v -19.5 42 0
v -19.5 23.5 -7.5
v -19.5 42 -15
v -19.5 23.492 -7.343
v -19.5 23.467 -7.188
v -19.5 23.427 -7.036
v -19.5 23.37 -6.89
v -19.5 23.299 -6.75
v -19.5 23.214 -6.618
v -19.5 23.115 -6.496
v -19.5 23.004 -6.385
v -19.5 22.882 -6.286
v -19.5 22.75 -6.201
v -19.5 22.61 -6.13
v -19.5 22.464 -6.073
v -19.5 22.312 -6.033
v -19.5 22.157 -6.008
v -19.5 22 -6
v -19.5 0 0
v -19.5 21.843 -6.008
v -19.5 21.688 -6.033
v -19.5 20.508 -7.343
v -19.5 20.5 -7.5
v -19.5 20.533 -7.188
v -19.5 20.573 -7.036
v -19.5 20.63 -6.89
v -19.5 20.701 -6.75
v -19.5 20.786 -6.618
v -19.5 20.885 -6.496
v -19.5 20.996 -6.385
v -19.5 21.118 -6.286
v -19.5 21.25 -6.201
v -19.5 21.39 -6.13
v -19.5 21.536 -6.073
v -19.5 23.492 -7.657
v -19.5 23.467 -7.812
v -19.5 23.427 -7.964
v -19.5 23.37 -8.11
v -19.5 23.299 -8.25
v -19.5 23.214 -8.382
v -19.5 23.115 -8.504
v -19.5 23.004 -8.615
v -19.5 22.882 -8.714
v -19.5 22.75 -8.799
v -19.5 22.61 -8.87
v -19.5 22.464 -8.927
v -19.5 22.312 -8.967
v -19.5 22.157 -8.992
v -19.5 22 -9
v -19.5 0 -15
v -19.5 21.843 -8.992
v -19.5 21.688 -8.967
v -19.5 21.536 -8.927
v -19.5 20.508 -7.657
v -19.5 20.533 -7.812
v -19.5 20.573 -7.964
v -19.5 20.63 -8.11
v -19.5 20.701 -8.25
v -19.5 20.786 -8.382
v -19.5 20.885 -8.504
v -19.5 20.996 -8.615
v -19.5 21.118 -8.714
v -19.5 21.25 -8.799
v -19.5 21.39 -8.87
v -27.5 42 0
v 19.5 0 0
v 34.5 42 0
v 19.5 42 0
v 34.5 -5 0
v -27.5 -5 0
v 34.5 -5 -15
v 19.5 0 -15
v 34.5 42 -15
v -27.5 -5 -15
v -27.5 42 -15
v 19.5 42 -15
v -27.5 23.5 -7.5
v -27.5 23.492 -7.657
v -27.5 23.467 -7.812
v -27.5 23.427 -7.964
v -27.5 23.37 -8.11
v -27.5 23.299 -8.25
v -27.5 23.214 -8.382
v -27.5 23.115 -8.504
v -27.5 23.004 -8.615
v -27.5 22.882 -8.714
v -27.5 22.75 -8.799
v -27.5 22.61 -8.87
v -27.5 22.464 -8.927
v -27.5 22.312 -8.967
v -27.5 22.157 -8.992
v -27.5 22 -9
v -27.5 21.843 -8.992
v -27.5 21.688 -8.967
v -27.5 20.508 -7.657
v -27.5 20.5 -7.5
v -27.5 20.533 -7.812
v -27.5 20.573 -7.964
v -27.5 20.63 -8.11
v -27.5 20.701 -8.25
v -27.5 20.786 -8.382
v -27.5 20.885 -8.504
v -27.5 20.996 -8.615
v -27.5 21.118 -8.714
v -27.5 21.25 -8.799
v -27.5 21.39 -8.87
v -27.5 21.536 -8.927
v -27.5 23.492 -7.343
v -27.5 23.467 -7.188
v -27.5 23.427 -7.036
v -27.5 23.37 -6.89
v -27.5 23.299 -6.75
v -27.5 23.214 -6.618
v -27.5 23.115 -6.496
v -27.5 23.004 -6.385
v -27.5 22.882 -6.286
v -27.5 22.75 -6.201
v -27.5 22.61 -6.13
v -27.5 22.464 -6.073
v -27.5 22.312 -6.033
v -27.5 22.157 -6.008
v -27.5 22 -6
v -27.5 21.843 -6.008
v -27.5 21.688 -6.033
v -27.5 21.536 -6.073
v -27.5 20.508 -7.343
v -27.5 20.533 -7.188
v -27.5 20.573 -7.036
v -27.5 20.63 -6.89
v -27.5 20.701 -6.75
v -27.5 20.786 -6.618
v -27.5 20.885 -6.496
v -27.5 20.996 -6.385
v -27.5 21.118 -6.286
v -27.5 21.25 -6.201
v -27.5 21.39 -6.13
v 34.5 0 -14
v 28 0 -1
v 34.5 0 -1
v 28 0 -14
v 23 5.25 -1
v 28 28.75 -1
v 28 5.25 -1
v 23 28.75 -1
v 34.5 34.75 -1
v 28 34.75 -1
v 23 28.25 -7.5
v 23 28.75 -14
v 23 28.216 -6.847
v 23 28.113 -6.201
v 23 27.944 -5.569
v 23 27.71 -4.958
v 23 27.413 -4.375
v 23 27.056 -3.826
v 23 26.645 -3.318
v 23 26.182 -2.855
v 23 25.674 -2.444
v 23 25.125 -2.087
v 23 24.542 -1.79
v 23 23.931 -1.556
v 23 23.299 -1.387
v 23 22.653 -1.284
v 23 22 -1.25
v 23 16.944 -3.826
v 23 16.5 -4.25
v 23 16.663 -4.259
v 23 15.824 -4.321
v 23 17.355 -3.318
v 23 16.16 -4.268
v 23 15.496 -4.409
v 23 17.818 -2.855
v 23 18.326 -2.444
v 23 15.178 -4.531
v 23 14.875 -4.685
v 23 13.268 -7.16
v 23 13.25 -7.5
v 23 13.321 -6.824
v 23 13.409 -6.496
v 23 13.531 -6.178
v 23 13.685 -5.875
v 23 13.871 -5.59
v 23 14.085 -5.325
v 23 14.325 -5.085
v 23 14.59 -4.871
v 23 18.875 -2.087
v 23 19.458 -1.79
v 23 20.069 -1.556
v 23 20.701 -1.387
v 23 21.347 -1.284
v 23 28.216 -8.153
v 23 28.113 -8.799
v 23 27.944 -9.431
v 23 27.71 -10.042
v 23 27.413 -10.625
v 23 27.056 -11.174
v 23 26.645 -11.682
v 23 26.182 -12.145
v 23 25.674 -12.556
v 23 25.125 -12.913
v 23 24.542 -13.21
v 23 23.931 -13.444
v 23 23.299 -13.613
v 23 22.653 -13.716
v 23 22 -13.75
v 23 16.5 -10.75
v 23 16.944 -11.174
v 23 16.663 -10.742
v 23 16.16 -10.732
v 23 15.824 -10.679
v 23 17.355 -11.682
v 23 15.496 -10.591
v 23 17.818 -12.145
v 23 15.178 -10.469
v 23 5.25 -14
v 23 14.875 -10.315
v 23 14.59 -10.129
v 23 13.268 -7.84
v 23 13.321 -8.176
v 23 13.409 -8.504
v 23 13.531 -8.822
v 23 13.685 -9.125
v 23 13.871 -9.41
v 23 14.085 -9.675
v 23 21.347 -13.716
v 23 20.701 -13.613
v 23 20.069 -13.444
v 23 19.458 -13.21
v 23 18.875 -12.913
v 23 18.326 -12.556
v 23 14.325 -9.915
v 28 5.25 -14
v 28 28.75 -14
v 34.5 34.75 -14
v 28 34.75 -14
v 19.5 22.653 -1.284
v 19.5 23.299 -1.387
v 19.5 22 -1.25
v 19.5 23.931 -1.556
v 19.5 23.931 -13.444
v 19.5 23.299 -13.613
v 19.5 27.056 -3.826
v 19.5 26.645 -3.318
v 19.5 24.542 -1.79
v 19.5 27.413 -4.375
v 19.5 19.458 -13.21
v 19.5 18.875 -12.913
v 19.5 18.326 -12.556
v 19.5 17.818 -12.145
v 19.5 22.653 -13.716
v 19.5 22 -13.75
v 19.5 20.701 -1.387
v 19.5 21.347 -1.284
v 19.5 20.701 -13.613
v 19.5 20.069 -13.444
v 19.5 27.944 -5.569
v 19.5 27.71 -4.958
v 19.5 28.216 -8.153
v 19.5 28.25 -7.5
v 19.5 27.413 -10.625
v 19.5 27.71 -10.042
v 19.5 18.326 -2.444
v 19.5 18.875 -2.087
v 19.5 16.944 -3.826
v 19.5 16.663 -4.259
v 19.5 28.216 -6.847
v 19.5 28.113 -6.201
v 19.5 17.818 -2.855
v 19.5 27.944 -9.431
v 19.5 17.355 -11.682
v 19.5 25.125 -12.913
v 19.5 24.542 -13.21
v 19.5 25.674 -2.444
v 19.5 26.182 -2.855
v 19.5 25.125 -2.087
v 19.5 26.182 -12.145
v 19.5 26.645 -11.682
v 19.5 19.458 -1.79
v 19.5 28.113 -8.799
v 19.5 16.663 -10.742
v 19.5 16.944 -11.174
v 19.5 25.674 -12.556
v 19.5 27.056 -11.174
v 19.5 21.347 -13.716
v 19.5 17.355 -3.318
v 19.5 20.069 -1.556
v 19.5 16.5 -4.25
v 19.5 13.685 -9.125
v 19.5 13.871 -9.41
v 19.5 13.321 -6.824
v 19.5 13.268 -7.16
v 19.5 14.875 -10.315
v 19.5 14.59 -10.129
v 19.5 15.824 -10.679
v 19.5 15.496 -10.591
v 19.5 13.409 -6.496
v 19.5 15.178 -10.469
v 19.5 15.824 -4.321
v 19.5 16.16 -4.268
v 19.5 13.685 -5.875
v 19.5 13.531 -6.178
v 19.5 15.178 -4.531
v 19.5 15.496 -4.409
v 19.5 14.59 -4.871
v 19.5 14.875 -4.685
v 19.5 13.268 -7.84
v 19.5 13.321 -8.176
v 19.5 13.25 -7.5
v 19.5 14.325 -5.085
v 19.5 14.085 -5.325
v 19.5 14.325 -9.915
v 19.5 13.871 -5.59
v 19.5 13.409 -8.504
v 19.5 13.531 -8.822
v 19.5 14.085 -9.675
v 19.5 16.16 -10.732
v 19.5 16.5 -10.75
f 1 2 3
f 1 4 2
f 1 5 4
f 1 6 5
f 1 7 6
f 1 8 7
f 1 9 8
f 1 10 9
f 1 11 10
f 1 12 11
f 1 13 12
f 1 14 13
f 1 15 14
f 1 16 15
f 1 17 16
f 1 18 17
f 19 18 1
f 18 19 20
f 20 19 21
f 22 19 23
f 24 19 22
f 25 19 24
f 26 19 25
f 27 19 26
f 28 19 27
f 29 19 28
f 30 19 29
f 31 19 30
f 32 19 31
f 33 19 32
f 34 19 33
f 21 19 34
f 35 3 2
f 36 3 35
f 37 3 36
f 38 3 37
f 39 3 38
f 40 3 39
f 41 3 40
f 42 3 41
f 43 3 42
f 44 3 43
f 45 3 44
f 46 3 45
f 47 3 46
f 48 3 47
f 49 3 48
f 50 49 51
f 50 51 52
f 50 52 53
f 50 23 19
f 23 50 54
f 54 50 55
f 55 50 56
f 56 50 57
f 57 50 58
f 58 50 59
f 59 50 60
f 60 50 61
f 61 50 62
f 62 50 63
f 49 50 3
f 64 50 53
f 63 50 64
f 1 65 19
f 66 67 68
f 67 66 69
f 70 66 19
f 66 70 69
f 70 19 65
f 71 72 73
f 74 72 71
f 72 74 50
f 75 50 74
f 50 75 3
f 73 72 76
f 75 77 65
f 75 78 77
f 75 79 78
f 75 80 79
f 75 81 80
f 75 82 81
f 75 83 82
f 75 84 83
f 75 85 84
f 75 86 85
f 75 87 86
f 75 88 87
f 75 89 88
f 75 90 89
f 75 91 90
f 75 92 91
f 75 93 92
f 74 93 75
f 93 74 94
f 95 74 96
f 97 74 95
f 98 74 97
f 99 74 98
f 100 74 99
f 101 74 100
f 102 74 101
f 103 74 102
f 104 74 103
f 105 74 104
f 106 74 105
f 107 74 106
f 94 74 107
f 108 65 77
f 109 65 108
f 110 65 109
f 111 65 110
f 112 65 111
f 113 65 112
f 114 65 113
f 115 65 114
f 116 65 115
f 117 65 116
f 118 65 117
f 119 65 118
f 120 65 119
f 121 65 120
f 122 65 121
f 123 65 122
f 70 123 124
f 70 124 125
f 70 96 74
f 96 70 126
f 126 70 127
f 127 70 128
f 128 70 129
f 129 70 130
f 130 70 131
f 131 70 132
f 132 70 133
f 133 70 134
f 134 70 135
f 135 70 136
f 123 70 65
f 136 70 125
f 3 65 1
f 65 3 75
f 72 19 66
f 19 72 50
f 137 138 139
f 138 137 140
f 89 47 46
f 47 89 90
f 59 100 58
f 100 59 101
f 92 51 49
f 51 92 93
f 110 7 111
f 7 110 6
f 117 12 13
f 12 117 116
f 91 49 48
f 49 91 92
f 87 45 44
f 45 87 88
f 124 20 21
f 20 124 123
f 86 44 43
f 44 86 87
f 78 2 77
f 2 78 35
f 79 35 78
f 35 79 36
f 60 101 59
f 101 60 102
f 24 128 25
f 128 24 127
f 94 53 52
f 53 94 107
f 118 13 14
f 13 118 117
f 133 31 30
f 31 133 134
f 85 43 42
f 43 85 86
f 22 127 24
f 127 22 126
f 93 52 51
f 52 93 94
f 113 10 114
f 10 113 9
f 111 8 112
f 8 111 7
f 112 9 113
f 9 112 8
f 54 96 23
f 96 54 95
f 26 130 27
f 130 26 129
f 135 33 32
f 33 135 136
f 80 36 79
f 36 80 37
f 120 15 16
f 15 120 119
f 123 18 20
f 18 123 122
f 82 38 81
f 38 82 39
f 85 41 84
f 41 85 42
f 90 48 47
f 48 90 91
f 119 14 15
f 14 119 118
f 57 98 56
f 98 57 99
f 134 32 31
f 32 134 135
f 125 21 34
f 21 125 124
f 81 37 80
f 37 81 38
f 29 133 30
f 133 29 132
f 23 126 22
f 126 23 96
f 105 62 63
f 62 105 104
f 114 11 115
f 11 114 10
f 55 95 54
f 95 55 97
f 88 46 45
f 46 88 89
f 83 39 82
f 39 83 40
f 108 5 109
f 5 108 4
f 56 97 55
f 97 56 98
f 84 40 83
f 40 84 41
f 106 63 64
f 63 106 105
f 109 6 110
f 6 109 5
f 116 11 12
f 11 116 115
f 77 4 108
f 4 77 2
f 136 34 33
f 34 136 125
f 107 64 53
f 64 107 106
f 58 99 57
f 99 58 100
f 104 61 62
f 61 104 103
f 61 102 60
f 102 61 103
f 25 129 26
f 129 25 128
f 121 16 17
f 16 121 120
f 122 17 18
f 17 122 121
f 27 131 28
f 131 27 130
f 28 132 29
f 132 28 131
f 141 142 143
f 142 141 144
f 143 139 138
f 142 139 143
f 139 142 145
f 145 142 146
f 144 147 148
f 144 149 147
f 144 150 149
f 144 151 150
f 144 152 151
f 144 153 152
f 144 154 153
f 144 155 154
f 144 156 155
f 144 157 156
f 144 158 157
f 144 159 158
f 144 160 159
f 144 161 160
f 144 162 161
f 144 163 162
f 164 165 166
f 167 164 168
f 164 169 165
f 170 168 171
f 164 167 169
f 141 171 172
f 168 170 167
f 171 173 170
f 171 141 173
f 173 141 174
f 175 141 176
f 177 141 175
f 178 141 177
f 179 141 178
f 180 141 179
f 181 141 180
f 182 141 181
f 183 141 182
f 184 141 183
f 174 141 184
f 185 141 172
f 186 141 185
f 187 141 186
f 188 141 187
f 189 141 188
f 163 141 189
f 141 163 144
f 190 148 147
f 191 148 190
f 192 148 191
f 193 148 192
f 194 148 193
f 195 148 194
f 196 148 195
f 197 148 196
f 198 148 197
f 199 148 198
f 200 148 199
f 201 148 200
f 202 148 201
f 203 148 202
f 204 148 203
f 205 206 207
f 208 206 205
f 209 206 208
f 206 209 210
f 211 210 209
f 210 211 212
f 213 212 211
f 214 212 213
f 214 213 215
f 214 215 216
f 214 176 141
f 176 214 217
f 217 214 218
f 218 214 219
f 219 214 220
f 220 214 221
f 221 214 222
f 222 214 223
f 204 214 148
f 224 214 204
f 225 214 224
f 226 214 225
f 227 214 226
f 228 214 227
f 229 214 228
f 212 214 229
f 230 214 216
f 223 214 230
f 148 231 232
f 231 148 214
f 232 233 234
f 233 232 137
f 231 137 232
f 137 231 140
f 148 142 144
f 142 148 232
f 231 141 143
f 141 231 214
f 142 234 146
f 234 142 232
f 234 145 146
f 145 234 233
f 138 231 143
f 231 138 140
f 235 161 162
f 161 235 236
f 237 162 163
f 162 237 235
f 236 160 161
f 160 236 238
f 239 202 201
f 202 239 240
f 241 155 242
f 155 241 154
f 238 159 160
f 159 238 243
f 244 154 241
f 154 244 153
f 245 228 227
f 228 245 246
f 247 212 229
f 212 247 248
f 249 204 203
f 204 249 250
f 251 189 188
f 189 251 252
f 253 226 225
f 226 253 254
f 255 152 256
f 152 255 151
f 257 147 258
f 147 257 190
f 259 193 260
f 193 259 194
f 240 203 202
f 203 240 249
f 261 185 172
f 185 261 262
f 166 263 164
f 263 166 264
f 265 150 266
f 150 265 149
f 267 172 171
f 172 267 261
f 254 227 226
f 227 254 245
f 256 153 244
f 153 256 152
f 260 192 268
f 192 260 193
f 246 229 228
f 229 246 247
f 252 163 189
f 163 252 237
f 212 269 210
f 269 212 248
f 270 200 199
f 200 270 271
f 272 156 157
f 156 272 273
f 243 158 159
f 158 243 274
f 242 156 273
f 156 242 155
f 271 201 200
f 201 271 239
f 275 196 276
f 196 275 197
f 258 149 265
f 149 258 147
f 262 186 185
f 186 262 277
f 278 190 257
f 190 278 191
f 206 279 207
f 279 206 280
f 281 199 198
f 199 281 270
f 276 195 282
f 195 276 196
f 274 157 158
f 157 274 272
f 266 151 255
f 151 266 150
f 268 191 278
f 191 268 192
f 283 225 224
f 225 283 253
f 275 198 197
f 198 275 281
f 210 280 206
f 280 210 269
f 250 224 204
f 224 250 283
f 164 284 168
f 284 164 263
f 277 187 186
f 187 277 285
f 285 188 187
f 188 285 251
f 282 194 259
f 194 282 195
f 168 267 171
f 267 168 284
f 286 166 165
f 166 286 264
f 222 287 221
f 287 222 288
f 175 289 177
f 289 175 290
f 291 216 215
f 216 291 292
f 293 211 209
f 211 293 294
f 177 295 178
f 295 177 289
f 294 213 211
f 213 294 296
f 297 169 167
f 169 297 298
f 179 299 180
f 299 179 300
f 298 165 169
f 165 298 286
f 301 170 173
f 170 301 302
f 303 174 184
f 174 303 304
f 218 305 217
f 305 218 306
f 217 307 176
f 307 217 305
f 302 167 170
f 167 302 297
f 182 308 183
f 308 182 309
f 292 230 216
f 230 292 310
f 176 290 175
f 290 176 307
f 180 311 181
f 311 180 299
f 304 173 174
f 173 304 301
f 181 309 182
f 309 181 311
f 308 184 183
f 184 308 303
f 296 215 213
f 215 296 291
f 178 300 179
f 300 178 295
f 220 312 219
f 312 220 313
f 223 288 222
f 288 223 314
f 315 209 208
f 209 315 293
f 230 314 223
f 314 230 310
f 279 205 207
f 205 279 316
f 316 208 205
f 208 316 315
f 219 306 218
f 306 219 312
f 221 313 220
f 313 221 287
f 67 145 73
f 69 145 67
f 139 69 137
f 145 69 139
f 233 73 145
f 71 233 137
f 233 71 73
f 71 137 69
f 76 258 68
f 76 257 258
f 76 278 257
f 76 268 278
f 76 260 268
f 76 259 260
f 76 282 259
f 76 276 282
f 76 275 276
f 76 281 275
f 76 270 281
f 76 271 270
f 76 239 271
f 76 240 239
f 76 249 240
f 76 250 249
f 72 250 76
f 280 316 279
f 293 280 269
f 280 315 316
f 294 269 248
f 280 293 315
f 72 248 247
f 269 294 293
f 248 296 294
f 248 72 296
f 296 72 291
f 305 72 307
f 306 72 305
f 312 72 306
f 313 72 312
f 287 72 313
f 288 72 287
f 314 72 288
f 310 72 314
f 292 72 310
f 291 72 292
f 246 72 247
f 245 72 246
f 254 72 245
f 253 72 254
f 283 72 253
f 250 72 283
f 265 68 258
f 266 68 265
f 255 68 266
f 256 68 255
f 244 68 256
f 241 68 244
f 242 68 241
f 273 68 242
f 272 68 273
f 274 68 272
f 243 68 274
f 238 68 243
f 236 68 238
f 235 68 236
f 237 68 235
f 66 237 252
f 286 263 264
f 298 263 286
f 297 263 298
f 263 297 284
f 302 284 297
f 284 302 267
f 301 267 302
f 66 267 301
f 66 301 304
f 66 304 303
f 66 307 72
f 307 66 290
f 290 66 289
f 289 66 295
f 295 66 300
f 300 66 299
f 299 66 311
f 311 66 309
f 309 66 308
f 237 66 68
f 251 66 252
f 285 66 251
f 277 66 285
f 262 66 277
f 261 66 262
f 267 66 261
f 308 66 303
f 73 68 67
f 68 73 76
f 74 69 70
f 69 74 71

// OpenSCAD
// file: ../lib/micro_servo.scad
$fn = 60;



module micro_servo()
{
    servo_mount_width = 8.5;
    servo_body_length = 22.5;
    servo_body_width = 12; // square body
    servo_body_height = 22.5;
    servo_axis_length = 15.5;

    mounting_arm_thickness = 2.5;
    mounting_arm_length = 5;
    mounting_arm_height = 15;

    gearbox_cylinder_height = 4;
    major_gearbox_offset = 0.5; // distance from edge
    major_gearbox_cylinder_diameter = 11.5;
    minor_gearbox_offset = 5.5; // distance from major gearbox center
    //minor_gearbox_cylinder_diameter = 5.5;
    minor_gearbox_cylinder_diameter = 6.5; // for simplicity

    control_head_diameter = 5;
    control_head_height = 3;
    
    translate([-servo_body_width / 2, 0, 0])
    translate([0, -servo_body_length + major_gearbox_offset + (major_gearbox_cylinder_diameter / 2), 0])
    translate([0, 0, -(servo_body_height + gearbox_cylinder_height)])
    union()
    {
        cube([servo_body_width, servo_body_length, servo_body_height]);
        
        // forward mounting arm
        translate([0, servo_body_length, mounting_arm_height])
        cube([servo_body_width, mounting_arm_length, mounting_arm_thickness]);
        
        // rear mounting arm
        translate([0, -mounting_arm_length, mounting_arm_height])
        cube([servo_body_width, mounting_arm_length, mounting_arm_thickness]);
        
        // major gearbox cylinder
        translate([major_gearbox_offset/2, servo_body_length - major_gearbox_offset, servo_body_height])
        translate([major_gearbox_cylinder_diameter / 2, -major_gearbox_cylinder_diameter / 2, 0])
        cylinder(d=major_gearbox_cylinder_diameter, h=gearbox_cylinder_height);
        
        // minor gearbox cylinder
        translate([major_gearbox_offset/2, servo_body_length - major_gearbox_offset, servo_body_height])
        translate([major_gearbox_cylinder_diameter / 2, -major_gearbox_cylinder_diameter / 2, 0])
        translate([0, -minor_gearbox_offset, 0])
        cylinder(d=minor_gearbox_cylinder_diameter, h=gearbox_cylinder_height);
        
        // control head
        translate([0, servo_body_length - major_gearbox_offset, servo_body_height])
        translate([major_gearbox_cylinder_diameter / 2, -major_gearbox_cylinder_diameter / 2, gearbox_cylinder_height])
        cylinder(d=control_head_diameter, h=control_head_height);
    }
}

module micro_servo_void()
{
    servo_mount_width = 9.5;
    servo_body_length = 23.5;
    servo_body_width = 13; // square body
    servo_body_height = 23.5;
    servo_axis_length = 15.5;

    mounting_arm_thickness = 3.5;
    mounting_arm_length = 6;
    mounting_arm_height = 15;

    gearbox_cylinder_height = 4.5;
    major_gearbox_offset = 0.5; // distance from edge
    major_gearbox_cylinder_diameter = 12.5;
    minor_gearbox_offset = 5.5; // distance from major gearbox center
    //minor_gearbox_cylinder_diameter = 5.5;
    minor_gearbox_cylinder_diameter = 6.5; // for simplicity

    control_head_diameter = 5;
    control_head_height = 3;
    
    translate([-servo_body_width / 2, 0, 0])
    translate([0, -servo_body_length + major_gearbox_offset + (major_gearbox_cylinder_diameter / 2), 0])
    translate([0, 0, -(servo_body_height + gearbox_cylinder_height)])
    union()
    {
        cube([servo_body_width, servo_body_length, servo_body_height]);
        
        // forward mounting arm
        translate([0, servo_body_length, 0])
        cube([servo_body_width, mounting_arm_length, mounting_arm_thickness + mounting_arm_height]);
        
        // rear mounting arm
        translate([0, -mounting_arm_length, 0])
        cube([servo_body_width, mounting_arm_length, mounting_arm_thickness + mounting_arm_height]);
        
        // major gearbox cylinder
        translate([major_gearbox_offset/2, servo_body_length - major_gearbox_offset, servo_body_height])
        translate([major_gearbox_cylinder_diameter / 2, -major_gearbox_cylinder_diameter / 2, 0])
        cylinder(d=major_gearbox_cylinder_diameter, h=gearbox_cylinder_height);
        
        // minor gearbox cylinder
        translate([major_gearbox_offset/2, servo_body_length - major_gearbox_offset, servo_body_height])
        translate([major_gearbox_cylinder_diameter / 2, -major_gearbox_cylinder_diameter / 2, 0])
        translate([0, -minor_gearbox_offset, 0])
        cylinder(d=minor_gearbox_cylinder_diameter, h=gearbox_cylinder_height);
        
        // control head
        translate([0, servo_body_length - major_gearbox_offset, servo_body_height])
        translate([major_gearbox_cylinder_diameter / 2, -major_gearbox_cylinder_diameter / 2, gearbox_cylinder_height])
        cylinder(d=control_head_diameter, h=control_head_height);
    }
}

//micro_servo_void();
// file: ../lib/rpi.scad
module base_plate_screw_head_cone(screw_head_radius = 6, screw_head_depth = 2)
{

    rotate_extrude()
    {
        translate([0, 0, 0]) polygon(points=[[0,0],[screw_head_radius, 0],[0,screw_head_depth]], paths=[[0,1,2]]);
    }
}


module raspberry_pi_holes(thickness = 3, screw_hole_diameter = 3)
{
//    z_offset = -thickness / 2.0;
    z_offset = -thickness;
    for ( x_offset = [3.5, 61.5] )
    {
        for ( y_offset = [3.5, 52.5] )
        {
            union()
            {
                translate([x_offset, y_offset, z_offset]) cylinder(d=screw_hole_diameter, h=thickness);
                translate([x_offset, y_offset, z_offset]) base_plate_screw_head_cone();
            }
        }
    }
}


// camera hole is centered at (0, 0, 0)
//camera_hole_center_x = 0;
//camera_hole_center_y = 6.7;
//module rpi_camera_holes(thickness = 2)
//{
//    wall_thickness = thickness;
//    
//    screw_head_depth = 2;
//    screw_head_radius = 4;
//    
//    translate([0, 0, -wall_thickness + 1])
//    union()
//    {
//        for ( y_offset = [-6.75, 6.25] )
//        {
//            for ( x_offset = [-10.5, 10.5] )
//            {
//                // screw hole
//                translate([camera_hole_center_x + x_offset, camera_hole_center_y+ y_offset, -10])
//                cylinder(h=20, r=1.25);
//                
//                // screw head cone
//                translate([camera_hole_center_x + x_offset, camera_hole_center_y+ y_offset, 0])
//                rotate([0, 0, 0])
//                rotate_extrude()
//                {
//                    translate([0, 0, 0]) polygon(points=[[0,0],[screw_head_radius, 0],[0,screw_head_depth]], paths=[[0,1,2]]);
//                }
//            }
//        }
//    }
//    
//    translate([camera_hole_center_x, camera_hole_center_y - 6.75, -wall_thickness])cube(size = [9.5, 9.5, 9.5], center = true);
//}

// lens center is at (0, 0, 0)
module rpi_camera_holes(thickness = 2, screw_hole_diameter = 2.5)
{
    lens_side_length = 9.5;
    
    union()
    {
        for ( y_offset = [0, 13] )
        {
            for ( x_offset = [-10.5, 10.5] )
            {
                translate([x_offset, y_offset, 0])
                cylinder(d=screw_hole_diameter, h=thickness);
            }
        }
        
        translate([-lens_side_length / 2, -lens_side_length / 2, 0])
        cube([9.5, 9.5, thickness]);
    }
}
// file: ../lib/rpi_tilt_gimbal_lib.scad
include <rpi.scad>
include <micro_servo.scad>

// for connecting to the drone
y_offset = -3;

$fn = 60;

width = 38;
length = 40;
thickness = 15;

support_length = 5;
left_arm_width = 8;
right_arm_width = 15;
spacing = 0.5;
rear_spacing = 2;

base_translation_width = (width / 2) + left_arm_width + spacing;
base_tilt_axis_y_offset = support_length + rear_spacing + (length / 2);
mount_tilt_axis_y_offset = length / 2;
right_arm_x_offset = (width / 2) + spacing;

camera_mount_brim = 3; //mm
camera_mount_thickness = 3;

module tilt_gimbal_base()
{
    translate([0, -support_length, -thickness])
    union()
    {
        // base support
        translate([-base_translation_width, 0, 0])
        cube([width + left_arm_width + right_arm_width + (2 * spacing), support_length, thickness]);
        
        // left arm
        difference()
        {
            translate([-base_translation_width, support_length, 0])
            cube([left_arm_width, length + rear_spacing, thickness]);
            
            translate([-base_translation_width, base_tilt_axis_y_offset, thickness / 2])
            rotate([0, 90, 0])
            cylinder(d = 3, h = left_arm_width);
        }
        
        // right arm with servo mount
        difference()
        {
            union()
            {
                translate([right_arm_x_offset, support_length, 0])
                cube([right_arm_width, length + rear_spacing, thickness]);
            }
            union()
            {
                // axis non-contact hole
                translate([right_arm_x_offset, base_tilt_axis_y_offset, thickness / 2])
                rotate([0, 90, 0])
                cylinder(d = 5.5, h = right_arm_width);
                
                // servo void
                translate([right_arm_x_offset - 1, base_tilt_axis_y_offset, thickness/2])
                rotate([0, -90, 0])
                micro_servo_void();
            }
        }
        

    }
}

module tilt_gimbal_camera_mount()
{
    translate([-width/2, rear_spacing, -thickness])
    difference()
    {
        union()
        {
            translate([0, 0, 0])
            cube([width, length, thickness]);
            

        }
        union()
        {
            // indentation
            translate([camera_mount_brim, 0, camera_mount_thickness])
            cube([width - (2 * camera_mount_brim), length - camera_mount_brim, thickness - camera_mount_thickness]);
            
            // camera mounting holes
            translate([width / 2, mount_tilt_axis_y_offset, 0])
            rpi_camera_holes(thickness = camera_mount_thickness);
            
            // left axis hole
            translate([0, mount_tilt_axis_y_offset, thickness / 2])
            rotate([0, 90, 0])
            cylinder(d=3, h=camera_mount_brim);
            
            // right axis hole with servo contact
            translate([width - camera_mount_brim, mount_tilt_axis_y_offset, thickness / 2])
            rotate([0, 90, 0])
            cylinder(d=4.75, h=camera_mount_brim);
        }
    }
}

//tilt_gimbal_base();
//tilt_gimbal_camera_mount();
// main file
include <../lib/rpi_tilt_gimbal_lib.scad>

tilt_gimbal_base();
